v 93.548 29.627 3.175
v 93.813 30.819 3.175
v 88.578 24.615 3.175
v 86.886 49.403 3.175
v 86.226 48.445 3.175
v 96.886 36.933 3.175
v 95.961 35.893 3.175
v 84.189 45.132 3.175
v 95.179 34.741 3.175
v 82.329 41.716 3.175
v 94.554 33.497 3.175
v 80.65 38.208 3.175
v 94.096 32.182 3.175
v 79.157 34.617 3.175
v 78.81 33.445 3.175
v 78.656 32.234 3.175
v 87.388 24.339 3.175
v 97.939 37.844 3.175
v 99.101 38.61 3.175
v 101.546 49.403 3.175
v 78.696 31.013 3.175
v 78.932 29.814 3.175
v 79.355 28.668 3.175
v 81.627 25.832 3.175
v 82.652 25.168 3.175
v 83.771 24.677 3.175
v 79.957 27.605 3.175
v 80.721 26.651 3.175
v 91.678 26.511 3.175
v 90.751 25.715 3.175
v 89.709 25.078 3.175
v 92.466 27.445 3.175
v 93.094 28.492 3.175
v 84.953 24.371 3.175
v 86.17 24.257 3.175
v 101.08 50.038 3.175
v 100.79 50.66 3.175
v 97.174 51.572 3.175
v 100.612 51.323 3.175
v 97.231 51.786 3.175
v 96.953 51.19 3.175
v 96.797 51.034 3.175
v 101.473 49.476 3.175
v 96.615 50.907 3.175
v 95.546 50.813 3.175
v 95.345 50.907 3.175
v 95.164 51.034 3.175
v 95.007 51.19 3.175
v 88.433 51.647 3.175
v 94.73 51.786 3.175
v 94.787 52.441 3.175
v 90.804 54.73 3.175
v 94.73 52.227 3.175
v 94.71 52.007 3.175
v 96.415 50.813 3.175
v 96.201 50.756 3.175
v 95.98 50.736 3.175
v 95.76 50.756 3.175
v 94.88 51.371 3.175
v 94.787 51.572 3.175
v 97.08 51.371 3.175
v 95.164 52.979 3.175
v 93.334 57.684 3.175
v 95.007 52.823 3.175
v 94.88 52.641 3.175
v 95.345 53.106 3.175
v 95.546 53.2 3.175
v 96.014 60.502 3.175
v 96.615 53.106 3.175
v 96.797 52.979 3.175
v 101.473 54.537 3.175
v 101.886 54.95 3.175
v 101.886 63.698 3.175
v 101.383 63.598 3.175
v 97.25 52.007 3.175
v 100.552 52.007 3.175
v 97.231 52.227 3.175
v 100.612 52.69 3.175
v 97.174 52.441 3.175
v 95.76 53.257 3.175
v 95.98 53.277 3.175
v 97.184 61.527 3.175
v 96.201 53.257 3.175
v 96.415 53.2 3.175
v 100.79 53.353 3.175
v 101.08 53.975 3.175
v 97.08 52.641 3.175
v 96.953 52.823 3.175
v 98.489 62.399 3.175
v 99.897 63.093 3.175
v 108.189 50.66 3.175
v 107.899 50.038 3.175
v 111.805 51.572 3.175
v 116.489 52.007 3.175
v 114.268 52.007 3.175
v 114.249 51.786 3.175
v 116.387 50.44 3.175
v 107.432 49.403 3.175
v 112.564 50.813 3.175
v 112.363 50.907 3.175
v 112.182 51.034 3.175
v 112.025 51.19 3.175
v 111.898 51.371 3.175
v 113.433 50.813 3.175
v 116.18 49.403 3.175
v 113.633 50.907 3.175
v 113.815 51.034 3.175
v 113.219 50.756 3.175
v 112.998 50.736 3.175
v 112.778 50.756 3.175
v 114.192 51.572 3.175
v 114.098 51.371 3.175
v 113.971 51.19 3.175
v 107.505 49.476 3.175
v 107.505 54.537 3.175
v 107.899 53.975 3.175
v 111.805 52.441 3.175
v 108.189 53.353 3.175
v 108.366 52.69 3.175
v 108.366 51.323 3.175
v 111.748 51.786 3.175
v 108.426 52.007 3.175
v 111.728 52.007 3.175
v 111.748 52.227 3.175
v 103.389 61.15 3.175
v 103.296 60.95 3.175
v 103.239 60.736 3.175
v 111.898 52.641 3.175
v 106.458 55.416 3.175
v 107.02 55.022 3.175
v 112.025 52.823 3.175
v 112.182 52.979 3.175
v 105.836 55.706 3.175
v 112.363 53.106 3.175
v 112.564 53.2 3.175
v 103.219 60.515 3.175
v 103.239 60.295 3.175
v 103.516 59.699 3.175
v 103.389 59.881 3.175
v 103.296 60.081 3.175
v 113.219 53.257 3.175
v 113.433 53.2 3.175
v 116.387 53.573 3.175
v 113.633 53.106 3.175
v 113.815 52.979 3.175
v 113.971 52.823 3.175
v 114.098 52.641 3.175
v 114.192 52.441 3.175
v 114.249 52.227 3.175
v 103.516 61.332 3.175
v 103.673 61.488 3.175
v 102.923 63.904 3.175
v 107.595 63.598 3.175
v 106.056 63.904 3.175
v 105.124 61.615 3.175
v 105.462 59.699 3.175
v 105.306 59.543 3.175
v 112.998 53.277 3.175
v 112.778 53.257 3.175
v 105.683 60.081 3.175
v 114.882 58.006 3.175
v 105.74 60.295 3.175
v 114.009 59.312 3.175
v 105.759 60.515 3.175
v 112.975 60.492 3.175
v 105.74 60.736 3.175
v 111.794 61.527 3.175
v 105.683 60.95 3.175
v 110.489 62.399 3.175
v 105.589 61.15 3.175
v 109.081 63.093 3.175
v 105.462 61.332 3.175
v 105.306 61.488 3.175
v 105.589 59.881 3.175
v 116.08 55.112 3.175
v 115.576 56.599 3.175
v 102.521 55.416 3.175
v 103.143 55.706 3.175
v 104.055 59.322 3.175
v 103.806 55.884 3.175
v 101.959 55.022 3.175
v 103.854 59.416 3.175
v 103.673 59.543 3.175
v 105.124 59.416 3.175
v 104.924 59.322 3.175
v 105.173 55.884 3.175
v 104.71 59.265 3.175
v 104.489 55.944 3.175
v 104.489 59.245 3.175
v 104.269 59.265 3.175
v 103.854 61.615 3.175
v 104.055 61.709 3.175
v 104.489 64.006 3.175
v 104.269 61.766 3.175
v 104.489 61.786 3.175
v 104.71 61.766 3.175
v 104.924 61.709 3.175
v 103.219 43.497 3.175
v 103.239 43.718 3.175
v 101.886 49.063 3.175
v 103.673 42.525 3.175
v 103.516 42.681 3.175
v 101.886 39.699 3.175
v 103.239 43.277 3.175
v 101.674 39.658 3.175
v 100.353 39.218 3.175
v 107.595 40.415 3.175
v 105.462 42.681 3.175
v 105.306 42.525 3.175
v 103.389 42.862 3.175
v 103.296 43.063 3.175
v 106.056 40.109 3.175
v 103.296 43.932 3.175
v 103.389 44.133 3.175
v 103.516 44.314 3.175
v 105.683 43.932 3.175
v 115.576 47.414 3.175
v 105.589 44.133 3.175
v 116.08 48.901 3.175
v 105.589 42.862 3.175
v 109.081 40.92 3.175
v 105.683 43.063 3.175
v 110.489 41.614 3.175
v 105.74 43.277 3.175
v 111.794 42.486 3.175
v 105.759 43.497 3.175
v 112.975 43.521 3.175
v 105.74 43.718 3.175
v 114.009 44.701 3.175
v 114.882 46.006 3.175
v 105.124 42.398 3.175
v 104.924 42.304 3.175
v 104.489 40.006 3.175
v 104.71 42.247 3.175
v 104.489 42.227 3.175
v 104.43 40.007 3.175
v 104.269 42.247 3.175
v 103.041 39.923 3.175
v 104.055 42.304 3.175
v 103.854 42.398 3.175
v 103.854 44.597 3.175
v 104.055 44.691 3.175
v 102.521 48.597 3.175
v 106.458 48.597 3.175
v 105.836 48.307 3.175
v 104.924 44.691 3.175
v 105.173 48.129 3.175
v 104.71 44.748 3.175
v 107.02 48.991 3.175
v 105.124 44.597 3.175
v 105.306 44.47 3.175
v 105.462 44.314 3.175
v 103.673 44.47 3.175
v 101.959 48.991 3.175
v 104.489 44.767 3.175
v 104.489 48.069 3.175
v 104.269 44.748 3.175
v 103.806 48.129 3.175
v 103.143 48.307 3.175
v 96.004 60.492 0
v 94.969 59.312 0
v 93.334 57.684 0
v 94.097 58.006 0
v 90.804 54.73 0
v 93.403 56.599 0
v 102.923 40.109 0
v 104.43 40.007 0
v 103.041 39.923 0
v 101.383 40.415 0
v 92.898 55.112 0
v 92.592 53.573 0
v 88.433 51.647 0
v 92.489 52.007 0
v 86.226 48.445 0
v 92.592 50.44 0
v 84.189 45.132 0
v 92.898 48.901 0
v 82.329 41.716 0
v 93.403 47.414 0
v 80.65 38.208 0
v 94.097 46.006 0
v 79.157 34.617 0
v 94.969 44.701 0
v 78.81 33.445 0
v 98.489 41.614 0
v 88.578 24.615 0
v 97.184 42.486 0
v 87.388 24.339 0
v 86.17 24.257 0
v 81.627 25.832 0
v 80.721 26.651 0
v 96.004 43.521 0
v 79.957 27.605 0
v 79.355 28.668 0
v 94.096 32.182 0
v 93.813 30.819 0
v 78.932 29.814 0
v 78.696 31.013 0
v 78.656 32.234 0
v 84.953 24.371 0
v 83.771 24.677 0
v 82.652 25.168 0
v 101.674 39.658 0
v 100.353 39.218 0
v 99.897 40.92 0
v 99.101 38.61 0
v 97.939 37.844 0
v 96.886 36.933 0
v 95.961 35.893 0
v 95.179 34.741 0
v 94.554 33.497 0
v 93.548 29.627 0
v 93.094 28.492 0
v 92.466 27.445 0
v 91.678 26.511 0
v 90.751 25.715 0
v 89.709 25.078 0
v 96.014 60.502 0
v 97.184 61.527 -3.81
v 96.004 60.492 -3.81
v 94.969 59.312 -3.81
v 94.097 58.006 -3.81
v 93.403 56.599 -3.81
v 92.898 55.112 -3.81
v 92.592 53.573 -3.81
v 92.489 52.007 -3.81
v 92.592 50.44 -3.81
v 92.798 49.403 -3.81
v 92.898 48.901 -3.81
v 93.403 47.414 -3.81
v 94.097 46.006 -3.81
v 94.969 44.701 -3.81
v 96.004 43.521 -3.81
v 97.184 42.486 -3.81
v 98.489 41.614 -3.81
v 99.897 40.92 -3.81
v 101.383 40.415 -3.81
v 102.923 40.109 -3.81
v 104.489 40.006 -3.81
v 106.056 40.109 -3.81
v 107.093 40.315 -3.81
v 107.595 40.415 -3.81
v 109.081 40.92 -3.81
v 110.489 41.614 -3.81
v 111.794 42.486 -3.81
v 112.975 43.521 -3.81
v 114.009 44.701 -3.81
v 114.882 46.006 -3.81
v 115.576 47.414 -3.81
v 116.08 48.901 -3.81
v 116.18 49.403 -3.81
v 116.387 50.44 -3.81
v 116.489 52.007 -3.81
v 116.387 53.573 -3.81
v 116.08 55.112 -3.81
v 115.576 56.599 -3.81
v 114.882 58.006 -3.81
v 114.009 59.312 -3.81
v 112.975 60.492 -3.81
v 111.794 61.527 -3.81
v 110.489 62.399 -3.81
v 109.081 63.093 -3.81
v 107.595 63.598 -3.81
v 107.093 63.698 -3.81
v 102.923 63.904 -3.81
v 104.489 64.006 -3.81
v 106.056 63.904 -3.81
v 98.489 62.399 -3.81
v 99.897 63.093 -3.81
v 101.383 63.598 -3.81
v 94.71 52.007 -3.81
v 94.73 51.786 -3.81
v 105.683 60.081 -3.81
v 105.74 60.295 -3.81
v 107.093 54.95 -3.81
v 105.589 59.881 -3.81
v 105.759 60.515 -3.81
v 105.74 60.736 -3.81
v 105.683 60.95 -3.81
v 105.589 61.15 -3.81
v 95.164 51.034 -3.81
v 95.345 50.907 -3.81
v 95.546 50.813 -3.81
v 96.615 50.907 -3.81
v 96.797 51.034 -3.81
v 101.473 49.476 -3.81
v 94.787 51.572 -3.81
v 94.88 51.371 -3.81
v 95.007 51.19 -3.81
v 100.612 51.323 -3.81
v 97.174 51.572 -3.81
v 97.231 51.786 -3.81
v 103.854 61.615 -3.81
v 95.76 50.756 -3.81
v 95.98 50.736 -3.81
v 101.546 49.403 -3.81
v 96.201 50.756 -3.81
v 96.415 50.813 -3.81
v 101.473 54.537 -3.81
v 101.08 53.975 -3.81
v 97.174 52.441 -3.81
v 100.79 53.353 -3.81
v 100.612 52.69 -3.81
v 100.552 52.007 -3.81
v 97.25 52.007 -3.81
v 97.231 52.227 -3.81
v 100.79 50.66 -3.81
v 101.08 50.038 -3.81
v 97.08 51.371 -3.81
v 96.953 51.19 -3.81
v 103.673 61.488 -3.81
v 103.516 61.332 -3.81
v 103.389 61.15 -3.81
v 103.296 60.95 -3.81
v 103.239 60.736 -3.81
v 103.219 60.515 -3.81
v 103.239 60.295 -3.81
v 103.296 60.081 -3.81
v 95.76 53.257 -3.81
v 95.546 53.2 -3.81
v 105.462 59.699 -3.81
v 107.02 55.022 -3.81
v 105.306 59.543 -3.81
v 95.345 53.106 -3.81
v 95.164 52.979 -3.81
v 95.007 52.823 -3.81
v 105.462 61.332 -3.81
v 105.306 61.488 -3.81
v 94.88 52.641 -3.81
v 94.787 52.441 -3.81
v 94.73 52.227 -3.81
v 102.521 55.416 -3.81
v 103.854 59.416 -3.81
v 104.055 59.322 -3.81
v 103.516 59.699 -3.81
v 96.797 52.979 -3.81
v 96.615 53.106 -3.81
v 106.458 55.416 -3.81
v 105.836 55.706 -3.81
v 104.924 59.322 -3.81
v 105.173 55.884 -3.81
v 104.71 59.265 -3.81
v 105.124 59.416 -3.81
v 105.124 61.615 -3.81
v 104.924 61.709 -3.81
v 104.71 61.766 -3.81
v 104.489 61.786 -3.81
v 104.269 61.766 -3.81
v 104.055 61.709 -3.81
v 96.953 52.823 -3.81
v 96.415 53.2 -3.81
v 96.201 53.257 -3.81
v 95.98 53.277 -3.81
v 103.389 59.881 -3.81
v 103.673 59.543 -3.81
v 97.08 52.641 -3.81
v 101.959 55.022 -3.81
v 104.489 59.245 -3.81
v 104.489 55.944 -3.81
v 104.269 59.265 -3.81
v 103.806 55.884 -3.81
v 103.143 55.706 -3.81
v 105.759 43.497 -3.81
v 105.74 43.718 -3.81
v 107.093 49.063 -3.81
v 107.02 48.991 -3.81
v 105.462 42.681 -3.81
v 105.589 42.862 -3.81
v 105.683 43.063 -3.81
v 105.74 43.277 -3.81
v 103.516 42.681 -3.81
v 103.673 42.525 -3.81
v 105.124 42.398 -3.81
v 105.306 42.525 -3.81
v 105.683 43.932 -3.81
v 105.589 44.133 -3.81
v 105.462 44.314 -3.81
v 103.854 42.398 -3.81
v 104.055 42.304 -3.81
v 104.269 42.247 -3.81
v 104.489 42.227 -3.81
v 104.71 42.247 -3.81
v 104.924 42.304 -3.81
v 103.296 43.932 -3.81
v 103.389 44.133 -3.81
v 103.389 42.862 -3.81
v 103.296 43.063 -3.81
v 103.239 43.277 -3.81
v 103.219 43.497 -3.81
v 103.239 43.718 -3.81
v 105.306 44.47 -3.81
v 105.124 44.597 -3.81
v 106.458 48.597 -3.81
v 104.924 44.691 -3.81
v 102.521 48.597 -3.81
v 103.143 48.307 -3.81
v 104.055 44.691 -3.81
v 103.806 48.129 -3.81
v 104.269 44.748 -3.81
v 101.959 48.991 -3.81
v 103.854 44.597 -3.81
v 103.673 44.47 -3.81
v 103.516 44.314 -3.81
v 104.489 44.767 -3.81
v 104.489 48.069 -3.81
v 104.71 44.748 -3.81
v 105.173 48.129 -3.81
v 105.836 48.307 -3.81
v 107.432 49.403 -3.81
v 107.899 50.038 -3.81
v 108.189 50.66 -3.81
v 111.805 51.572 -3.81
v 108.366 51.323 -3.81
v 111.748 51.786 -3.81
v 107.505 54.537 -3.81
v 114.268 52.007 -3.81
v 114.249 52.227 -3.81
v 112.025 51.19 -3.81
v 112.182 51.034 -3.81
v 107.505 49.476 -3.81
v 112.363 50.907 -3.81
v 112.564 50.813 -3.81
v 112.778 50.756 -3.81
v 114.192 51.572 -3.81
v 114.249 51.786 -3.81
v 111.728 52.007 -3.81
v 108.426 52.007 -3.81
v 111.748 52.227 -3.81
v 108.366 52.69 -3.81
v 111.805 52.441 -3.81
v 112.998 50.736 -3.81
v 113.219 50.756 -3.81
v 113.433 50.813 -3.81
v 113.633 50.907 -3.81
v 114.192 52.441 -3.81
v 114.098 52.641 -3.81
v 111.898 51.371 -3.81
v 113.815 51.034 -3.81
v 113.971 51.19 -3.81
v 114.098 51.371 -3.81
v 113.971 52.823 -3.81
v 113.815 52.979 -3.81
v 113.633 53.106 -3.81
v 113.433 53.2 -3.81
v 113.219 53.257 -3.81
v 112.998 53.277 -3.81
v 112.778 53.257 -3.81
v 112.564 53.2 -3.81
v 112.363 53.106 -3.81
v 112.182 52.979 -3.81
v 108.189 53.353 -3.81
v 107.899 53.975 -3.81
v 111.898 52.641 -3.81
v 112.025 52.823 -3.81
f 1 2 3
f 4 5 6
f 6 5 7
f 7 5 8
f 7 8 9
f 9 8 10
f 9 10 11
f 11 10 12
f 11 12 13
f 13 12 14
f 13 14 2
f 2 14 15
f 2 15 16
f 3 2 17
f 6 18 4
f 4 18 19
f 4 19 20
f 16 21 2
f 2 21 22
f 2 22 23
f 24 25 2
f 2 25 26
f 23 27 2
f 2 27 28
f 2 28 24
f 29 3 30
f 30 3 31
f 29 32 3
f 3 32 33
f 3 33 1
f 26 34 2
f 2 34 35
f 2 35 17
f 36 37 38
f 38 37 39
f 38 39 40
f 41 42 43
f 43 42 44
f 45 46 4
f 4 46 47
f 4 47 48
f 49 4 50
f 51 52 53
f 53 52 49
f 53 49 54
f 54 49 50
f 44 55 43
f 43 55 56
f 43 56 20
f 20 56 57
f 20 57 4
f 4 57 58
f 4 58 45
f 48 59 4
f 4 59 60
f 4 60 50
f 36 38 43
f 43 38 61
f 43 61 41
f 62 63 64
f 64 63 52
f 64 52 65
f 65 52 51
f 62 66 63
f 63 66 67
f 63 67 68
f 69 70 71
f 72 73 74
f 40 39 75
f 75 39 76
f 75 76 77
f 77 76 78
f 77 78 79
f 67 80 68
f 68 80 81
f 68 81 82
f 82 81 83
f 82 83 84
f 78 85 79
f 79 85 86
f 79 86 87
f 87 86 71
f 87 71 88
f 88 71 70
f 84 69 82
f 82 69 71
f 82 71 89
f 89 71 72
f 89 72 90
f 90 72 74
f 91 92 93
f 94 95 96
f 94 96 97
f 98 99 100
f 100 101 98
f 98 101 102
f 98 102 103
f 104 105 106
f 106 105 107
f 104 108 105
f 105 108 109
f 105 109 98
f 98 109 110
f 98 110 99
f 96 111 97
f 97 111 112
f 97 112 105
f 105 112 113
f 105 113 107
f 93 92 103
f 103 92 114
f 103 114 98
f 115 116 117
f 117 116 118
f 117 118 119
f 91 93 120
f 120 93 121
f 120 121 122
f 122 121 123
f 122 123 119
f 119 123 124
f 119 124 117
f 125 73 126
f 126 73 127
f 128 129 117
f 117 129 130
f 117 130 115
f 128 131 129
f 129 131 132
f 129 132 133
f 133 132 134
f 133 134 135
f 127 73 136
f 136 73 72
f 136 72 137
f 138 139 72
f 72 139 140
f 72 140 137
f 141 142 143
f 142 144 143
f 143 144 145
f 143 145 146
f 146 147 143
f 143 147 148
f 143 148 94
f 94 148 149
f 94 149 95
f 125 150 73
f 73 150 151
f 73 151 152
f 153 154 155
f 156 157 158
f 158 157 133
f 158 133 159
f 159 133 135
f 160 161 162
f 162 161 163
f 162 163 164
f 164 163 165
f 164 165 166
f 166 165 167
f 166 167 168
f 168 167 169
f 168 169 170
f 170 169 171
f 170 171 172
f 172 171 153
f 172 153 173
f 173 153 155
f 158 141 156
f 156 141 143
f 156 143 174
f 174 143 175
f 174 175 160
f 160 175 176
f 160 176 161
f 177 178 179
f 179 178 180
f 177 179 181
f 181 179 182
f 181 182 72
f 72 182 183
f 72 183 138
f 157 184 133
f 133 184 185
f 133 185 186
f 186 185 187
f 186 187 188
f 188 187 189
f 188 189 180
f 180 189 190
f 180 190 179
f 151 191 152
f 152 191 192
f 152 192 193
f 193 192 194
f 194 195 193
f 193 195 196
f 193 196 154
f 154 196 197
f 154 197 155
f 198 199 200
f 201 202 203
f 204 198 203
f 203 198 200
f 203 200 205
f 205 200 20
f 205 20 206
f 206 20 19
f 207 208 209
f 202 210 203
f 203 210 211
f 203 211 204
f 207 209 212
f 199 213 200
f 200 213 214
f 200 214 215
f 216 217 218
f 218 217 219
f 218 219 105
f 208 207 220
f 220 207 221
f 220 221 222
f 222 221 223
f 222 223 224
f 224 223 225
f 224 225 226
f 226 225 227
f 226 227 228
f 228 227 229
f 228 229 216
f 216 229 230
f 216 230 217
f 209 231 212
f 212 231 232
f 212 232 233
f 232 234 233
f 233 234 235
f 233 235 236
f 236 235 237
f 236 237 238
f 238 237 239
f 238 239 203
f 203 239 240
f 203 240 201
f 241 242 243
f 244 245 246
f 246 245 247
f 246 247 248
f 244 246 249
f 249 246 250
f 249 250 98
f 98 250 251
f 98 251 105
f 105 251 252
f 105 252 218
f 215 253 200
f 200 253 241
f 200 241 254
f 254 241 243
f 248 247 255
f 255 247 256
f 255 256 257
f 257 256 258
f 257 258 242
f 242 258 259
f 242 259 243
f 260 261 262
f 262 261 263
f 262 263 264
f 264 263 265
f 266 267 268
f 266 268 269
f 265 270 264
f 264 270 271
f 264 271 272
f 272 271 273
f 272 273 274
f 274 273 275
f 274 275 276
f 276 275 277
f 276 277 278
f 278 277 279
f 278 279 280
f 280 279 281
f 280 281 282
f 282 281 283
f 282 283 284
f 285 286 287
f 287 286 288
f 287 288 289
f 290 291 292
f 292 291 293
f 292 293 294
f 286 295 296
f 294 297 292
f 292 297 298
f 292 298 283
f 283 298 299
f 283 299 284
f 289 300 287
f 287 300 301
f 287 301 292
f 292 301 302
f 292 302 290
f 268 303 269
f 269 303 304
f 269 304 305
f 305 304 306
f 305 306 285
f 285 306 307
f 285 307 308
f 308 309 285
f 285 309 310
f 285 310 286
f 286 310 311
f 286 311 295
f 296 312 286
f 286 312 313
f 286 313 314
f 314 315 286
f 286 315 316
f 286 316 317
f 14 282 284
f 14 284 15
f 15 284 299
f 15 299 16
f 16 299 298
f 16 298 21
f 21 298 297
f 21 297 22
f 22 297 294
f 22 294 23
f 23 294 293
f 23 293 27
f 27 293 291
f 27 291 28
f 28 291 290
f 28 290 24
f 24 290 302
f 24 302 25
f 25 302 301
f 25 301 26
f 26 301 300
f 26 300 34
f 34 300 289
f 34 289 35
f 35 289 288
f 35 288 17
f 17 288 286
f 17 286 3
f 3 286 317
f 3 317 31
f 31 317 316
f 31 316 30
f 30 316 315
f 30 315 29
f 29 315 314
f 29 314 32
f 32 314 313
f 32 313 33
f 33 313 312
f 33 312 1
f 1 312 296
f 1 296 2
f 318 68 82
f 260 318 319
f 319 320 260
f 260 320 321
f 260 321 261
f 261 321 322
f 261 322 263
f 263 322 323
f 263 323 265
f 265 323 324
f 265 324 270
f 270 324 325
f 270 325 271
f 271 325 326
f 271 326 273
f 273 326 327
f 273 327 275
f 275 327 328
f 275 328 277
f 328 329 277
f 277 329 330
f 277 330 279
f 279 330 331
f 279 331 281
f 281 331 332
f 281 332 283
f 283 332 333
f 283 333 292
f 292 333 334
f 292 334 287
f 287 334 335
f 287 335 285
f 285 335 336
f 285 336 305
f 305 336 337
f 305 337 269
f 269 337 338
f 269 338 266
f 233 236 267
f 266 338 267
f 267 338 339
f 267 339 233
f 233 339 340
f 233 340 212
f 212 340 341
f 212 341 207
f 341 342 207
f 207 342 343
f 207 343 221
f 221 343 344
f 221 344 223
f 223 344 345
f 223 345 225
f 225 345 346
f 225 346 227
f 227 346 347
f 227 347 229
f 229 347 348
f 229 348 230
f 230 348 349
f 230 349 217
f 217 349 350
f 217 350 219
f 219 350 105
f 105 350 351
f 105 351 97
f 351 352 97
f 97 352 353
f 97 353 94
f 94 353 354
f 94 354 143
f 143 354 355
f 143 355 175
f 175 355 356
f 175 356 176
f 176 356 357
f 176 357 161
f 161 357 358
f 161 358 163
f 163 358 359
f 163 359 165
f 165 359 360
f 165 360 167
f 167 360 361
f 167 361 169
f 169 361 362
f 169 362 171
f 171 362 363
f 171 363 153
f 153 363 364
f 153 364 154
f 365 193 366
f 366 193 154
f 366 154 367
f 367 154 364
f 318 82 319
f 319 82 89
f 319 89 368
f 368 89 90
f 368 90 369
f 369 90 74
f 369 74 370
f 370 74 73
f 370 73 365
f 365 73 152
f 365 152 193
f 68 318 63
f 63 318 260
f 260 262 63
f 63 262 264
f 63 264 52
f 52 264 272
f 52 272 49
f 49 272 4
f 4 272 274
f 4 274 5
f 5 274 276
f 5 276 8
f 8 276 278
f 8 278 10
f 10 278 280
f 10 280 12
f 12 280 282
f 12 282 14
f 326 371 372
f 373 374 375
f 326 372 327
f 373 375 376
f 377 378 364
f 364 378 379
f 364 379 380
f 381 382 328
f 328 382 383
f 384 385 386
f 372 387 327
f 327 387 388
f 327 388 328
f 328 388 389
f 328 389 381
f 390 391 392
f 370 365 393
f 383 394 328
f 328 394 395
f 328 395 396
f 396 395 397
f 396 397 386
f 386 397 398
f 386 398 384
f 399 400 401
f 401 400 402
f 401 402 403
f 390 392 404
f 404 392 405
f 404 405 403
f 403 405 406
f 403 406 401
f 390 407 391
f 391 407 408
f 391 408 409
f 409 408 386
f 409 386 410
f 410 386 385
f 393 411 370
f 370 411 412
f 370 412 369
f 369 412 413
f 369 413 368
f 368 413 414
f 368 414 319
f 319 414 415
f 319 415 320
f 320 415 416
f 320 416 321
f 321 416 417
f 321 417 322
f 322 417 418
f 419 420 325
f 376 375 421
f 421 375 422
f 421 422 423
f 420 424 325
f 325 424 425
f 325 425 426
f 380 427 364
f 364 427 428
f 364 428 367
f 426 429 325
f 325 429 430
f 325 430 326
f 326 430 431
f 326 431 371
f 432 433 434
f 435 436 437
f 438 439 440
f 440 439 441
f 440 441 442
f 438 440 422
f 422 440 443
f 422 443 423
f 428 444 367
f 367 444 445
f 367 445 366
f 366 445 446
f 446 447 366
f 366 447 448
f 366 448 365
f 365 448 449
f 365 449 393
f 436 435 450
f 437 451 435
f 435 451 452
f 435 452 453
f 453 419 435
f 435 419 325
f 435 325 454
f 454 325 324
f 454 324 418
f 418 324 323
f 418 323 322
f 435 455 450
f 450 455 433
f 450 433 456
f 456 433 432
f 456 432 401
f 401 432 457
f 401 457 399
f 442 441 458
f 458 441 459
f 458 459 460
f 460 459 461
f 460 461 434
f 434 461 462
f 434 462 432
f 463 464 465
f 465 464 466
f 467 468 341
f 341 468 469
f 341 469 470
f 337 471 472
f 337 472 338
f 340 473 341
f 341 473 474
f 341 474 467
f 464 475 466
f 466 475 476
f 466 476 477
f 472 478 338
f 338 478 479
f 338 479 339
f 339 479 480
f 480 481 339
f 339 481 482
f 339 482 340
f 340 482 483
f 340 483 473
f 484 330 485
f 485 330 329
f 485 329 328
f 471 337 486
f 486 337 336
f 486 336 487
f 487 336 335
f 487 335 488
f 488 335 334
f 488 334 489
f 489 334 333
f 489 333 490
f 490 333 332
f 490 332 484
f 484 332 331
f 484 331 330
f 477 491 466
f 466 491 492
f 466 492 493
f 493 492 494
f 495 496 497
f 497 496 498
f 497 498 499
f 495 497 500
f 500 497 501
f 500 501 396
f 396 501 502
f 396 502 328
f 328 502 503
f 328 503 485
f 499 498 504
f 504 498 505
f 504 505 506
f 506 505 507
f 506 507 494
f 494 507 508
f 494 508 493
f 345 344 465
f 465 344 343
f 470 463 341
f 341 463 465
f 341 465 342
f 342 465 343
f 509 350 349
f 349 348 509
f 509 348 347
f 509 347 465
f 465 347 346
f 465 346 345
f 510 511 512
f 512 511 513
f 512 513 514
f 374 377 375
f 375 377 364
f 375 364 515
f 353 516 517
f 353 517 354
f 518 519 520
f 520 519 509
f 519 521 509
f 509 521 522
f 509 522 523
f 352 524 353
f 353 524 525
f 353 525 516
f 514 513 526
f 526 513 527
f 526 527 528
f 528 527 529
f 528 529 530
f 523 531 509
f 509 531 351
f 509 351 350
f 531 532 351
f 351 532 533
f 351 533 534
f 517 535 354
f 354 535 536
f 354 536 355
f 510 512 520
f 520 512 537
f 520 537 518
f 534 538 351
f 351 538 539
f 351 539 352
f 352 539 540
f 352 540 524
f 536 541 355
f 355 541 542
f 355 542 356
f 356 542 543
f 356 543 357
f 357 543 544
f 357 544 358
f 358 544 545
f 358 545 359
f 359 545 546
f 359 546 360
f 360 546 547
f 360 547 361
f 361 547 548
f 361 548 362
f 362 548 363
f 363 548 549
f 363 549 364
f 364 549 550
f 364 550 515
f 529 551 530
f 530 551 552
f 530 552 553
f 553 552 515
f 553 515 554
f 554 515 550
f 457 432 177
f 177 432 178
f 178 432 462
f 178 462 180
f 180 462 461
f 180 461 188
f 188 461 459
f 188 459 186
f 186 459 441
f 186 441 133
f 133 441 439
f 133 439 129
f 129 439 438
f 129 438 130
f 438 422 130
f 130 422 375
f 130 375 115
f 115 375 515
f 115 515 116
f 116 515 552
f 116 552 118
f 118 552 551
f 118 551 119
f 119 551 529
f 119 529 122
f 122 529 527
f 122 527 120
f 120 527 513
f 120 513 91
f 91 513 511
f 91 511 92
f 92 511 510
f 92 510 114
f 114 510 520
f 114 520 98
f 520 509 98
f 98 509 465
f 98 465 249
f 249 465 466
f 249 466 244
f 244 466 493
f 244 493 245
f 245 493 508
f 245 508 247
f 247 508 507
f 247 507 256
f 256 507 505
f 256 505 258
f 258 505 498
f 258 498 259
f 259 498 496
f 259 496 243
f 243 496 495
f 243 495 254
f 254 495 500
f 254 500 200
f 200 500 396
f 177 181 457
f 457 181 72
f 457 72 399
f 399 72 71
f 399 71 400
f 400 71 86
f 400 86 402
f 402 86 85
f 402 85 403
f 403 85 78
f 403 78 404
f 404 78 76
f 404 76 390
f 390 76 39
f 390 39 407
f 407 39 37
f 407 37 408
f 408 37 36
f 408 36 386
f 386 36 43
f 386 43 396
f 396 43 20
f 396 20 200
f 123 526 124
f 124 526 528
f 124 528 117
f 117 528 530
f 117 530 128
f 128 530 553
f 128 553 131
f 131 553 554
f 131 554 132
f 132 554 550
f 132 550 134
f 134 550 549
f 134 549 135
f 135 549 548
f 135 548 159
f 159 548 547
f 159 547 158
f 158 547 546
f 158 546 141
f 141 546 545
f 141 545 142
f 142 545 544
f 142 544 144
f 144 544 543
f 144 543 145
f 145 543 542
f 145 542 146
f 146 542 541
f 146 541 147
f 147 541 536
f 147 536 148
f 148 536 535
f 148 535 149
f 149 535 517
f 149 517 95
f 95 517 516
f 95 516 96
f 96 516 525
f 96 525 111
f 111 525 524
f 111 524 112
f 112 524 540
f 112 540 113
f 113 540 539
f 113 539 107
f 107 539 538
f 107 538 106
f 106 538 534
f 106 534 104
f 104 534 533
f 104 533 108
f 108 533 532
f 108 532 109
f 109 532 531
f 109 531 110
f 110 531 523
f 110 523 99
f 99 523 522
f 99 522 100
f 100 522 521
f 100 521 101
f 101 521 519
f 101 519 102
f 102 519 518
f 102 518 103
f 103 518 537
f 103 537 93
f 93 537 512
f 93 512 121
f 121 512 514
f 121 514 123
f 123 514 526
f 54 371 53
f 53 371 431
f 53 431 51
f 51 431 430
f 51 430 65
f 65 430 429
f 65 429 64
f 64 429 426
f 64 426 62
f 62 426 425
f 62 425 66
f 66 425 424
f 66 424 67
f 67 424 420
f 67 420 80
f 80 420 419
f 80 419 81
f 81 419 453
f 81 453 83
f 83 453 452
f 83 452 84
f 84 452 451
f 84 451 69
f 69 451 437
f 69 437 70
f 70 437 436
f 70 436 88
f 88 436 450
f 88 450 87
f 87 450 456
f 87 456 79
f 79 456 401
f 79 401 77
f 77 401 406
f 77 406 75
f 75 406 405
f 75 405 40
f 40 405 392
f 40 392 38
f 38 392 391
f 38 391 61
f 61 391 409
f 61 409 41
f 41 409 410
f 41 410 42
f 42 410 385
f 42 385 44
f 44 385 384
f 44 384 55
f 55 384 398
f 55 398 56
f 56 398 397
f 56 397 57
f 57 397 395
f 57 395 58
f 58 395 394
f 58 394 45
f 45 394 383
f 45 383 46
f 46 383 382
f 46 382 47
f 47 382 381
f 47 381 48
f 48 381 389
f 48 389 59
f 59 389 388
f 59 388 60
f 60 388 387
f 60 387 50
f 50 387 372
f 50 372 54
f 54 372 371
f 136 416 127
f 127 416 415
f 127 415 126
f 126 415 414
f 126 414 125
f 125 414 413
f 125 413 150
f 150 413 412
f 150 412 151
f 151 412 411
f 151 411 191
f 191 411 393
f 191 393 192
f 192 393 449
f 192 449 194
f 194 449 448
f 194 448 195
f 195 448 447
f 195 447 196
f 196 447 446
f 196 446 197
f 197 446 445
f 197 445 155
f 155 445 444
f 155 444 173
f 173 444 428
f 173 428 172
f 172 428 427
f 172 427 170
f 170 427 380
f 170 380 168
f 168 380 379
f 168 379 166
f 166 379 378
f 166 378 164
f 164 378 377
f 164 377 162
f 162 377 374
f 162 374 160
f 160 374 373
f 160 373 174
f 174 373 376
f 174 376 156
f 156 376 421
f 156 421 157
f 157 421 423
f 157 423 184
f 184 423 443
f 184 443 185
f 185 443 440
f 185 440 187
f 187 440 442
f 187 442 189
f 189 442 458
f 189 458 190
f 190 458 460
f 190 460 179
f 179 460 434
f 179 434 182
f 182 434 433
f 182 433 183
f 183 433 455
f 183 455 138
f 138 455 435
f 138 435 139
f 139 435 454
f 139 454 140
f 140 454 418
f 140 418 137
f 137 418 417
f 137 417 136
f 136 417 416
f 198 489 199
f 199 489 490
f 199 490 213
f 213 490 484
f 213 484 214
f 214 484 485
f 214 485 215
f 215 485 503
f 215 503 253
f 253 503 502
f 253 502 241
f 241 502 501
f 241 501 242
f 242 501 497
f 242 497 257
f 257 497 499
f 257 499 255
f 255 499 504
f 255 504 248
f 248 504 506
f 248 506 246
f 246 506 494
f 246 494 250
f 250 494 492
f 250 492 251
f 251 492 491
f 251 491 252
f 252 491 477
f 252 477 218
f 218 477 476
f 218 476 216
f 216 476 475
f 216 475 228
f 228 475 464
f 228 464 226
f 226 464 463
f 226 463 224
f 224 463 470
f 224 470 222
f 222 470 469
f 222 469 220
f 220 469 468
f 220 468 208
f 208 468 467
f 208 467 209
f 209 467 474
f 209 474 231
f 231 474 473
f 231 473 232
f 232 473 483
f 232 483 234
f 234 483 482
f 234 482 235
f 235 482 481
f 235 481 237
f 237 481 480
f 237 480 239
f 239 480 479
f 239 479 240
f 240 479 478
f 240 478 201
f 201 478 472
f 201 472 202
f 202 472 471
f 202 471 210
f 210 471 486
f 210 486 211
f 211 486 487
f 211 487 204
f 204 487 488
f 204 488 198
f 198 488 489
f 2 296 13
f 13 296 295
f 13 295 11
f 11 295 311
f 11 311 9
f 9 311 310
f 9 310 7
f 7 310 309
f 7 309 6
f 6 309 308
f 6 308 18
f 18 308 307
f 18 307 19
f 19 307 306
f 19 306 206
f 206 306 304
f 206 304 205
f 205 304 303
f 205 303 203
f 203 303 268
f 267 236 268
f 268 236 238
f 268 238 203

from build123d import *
from build123d.topology import SkipClean

# Parameters (mm, degrees)
BOSS_EXTRUDE1_DEPTH = 3.175
BOSS_EXTRUDE2_START = 3.81
SKETCH2_R           = 12
BOSS_EXTRUDE2_DEPTH = 3.81
SKETCH3_R           = 3.937
CUT_EXTRUDE1_DEPTH  = 134.099089527
SKETCH4_R           = 1.27
CUT_EXTRUDE2_DEPTH  = 134.099089527
CUT_EXTRUDE3_DEPTH  = 133.970273023


with BuildPart() as part:
    # Sketch1 → Boss-Extrude1 (new body)
    with BuildSketch(Plane.XY):
        with BuildLine():
            ThreePointArc((113.784062988, 44.416608597), (112.542436022, 60.902914722), (96.014300162, 60.502100346))
            ThreePointArc((96.014300162, 60.502100346), (86.225733854, 48.445051897), (79.156979953, 34.616777747))
            ThreePointArc((79.156979953, 34.616777747), (81.153408489, 26.227218543), (89.699693339, 25.073335615))
            ThreePointArc((89.699693339, 25.073335615), (102.758092485, 33.479680479), (113.784062988, 44.416608597))
        make_face()
    extrude(amount=BOSS_EXTRUDE1_DEPTH)

    # Sketch2 → Boss-Extrude2 (add)
    with SkipClean():  # the faces are left unmerged after this step: merging them gives an invalid solid
        with BuildSketch(Plane(origin=(0, 0, 0), x_dir=(-1, 0, 0), z_dir=(0, 0, -1)).offset(BOSS_EXTRUDE2_START)):
            with Locations((-104.48925, 52.0065)):
                Circle(SKETCH2_R)
        extrude(amount=-BOSS_EXTRUDE2_DEPTH)

    # Sketch3 → Cut-Extrude1 (cut, through all)
    with SkipClean():  # the faces are left unmerged after this step: merging them gives an invalid solid
        with BuildSketch(Plane(origin=(0, 0, -3.81), x_dir=(-1, 0, 0), z_dir=(0, 0, -1))):
            with Locations((-104.48925, 52.0065)):
                Circle(SKETCH3_R)
        extrude(amount=-CUT_EXTRUDE1_DEPTH, mode=Mode.SUBTRACT)

    # Sketch4 → Cut-Extrude2 (cut, through all)
    with SkipClean():  # the faces are left unmerged after this step: merging them gives an invalid solid
        with BuildSketch(Plane(origin=(0, 0, -3.81), x_dir=(-1, 0, 0), z_dir=(0, 0, -1))):
            with Locations((-95.98025, 52.0065)):
                Circle(SKETCH4_R)
            with Locations((-112.99825, 52.0065)):
                Circle(SKETCH4_R)
            with Locations((-104.48925, 43.4975)):
                Circle(SKETCH4_R)
            with Locations((-104.48925, 60.5155)):
                Circle(SKETCH4_R)
        extrude(amount=-CUT_EXTRUDE2_DEPTH, mode=Mode.SUBTRACT)

    # Sketch5 → Cut-Extrude3 (cut, through all)
    with SkipClean():  # the faces are left unmerged after this step: merging them gives an invalid solid
        with BuildSketch(Plane(origin=(0, 0, 0), x_dir=(-1, 0, 0), z_dir=(0, 0, -1))):
            with BuildLine():
                ThreePointArc((-104.430493989, 40.006643845), (-109.606684651, 41.15238269), (-113.7840634, 44.4166091))
                ThreePointArc((-113.7840634, 44.4166091), (-102.758092767, 33.479680706), (-89.699693406, 25.073335649))
                ThreePointArc((-89.699693406, 25.073335649), (-92.462895691, 27.440507008), (-93.81346398, 30.819079549))
                ThreePointArc((-93.81346398, 30.819079549), (-97.397477458, 37.40567327), (-104.430493989, 40.006643845))
            make_face()
        extrude(amount=-CUT_EXTRUDE3_DEPTH, mode=Mode.SUBTRACT)


solid = part.part
